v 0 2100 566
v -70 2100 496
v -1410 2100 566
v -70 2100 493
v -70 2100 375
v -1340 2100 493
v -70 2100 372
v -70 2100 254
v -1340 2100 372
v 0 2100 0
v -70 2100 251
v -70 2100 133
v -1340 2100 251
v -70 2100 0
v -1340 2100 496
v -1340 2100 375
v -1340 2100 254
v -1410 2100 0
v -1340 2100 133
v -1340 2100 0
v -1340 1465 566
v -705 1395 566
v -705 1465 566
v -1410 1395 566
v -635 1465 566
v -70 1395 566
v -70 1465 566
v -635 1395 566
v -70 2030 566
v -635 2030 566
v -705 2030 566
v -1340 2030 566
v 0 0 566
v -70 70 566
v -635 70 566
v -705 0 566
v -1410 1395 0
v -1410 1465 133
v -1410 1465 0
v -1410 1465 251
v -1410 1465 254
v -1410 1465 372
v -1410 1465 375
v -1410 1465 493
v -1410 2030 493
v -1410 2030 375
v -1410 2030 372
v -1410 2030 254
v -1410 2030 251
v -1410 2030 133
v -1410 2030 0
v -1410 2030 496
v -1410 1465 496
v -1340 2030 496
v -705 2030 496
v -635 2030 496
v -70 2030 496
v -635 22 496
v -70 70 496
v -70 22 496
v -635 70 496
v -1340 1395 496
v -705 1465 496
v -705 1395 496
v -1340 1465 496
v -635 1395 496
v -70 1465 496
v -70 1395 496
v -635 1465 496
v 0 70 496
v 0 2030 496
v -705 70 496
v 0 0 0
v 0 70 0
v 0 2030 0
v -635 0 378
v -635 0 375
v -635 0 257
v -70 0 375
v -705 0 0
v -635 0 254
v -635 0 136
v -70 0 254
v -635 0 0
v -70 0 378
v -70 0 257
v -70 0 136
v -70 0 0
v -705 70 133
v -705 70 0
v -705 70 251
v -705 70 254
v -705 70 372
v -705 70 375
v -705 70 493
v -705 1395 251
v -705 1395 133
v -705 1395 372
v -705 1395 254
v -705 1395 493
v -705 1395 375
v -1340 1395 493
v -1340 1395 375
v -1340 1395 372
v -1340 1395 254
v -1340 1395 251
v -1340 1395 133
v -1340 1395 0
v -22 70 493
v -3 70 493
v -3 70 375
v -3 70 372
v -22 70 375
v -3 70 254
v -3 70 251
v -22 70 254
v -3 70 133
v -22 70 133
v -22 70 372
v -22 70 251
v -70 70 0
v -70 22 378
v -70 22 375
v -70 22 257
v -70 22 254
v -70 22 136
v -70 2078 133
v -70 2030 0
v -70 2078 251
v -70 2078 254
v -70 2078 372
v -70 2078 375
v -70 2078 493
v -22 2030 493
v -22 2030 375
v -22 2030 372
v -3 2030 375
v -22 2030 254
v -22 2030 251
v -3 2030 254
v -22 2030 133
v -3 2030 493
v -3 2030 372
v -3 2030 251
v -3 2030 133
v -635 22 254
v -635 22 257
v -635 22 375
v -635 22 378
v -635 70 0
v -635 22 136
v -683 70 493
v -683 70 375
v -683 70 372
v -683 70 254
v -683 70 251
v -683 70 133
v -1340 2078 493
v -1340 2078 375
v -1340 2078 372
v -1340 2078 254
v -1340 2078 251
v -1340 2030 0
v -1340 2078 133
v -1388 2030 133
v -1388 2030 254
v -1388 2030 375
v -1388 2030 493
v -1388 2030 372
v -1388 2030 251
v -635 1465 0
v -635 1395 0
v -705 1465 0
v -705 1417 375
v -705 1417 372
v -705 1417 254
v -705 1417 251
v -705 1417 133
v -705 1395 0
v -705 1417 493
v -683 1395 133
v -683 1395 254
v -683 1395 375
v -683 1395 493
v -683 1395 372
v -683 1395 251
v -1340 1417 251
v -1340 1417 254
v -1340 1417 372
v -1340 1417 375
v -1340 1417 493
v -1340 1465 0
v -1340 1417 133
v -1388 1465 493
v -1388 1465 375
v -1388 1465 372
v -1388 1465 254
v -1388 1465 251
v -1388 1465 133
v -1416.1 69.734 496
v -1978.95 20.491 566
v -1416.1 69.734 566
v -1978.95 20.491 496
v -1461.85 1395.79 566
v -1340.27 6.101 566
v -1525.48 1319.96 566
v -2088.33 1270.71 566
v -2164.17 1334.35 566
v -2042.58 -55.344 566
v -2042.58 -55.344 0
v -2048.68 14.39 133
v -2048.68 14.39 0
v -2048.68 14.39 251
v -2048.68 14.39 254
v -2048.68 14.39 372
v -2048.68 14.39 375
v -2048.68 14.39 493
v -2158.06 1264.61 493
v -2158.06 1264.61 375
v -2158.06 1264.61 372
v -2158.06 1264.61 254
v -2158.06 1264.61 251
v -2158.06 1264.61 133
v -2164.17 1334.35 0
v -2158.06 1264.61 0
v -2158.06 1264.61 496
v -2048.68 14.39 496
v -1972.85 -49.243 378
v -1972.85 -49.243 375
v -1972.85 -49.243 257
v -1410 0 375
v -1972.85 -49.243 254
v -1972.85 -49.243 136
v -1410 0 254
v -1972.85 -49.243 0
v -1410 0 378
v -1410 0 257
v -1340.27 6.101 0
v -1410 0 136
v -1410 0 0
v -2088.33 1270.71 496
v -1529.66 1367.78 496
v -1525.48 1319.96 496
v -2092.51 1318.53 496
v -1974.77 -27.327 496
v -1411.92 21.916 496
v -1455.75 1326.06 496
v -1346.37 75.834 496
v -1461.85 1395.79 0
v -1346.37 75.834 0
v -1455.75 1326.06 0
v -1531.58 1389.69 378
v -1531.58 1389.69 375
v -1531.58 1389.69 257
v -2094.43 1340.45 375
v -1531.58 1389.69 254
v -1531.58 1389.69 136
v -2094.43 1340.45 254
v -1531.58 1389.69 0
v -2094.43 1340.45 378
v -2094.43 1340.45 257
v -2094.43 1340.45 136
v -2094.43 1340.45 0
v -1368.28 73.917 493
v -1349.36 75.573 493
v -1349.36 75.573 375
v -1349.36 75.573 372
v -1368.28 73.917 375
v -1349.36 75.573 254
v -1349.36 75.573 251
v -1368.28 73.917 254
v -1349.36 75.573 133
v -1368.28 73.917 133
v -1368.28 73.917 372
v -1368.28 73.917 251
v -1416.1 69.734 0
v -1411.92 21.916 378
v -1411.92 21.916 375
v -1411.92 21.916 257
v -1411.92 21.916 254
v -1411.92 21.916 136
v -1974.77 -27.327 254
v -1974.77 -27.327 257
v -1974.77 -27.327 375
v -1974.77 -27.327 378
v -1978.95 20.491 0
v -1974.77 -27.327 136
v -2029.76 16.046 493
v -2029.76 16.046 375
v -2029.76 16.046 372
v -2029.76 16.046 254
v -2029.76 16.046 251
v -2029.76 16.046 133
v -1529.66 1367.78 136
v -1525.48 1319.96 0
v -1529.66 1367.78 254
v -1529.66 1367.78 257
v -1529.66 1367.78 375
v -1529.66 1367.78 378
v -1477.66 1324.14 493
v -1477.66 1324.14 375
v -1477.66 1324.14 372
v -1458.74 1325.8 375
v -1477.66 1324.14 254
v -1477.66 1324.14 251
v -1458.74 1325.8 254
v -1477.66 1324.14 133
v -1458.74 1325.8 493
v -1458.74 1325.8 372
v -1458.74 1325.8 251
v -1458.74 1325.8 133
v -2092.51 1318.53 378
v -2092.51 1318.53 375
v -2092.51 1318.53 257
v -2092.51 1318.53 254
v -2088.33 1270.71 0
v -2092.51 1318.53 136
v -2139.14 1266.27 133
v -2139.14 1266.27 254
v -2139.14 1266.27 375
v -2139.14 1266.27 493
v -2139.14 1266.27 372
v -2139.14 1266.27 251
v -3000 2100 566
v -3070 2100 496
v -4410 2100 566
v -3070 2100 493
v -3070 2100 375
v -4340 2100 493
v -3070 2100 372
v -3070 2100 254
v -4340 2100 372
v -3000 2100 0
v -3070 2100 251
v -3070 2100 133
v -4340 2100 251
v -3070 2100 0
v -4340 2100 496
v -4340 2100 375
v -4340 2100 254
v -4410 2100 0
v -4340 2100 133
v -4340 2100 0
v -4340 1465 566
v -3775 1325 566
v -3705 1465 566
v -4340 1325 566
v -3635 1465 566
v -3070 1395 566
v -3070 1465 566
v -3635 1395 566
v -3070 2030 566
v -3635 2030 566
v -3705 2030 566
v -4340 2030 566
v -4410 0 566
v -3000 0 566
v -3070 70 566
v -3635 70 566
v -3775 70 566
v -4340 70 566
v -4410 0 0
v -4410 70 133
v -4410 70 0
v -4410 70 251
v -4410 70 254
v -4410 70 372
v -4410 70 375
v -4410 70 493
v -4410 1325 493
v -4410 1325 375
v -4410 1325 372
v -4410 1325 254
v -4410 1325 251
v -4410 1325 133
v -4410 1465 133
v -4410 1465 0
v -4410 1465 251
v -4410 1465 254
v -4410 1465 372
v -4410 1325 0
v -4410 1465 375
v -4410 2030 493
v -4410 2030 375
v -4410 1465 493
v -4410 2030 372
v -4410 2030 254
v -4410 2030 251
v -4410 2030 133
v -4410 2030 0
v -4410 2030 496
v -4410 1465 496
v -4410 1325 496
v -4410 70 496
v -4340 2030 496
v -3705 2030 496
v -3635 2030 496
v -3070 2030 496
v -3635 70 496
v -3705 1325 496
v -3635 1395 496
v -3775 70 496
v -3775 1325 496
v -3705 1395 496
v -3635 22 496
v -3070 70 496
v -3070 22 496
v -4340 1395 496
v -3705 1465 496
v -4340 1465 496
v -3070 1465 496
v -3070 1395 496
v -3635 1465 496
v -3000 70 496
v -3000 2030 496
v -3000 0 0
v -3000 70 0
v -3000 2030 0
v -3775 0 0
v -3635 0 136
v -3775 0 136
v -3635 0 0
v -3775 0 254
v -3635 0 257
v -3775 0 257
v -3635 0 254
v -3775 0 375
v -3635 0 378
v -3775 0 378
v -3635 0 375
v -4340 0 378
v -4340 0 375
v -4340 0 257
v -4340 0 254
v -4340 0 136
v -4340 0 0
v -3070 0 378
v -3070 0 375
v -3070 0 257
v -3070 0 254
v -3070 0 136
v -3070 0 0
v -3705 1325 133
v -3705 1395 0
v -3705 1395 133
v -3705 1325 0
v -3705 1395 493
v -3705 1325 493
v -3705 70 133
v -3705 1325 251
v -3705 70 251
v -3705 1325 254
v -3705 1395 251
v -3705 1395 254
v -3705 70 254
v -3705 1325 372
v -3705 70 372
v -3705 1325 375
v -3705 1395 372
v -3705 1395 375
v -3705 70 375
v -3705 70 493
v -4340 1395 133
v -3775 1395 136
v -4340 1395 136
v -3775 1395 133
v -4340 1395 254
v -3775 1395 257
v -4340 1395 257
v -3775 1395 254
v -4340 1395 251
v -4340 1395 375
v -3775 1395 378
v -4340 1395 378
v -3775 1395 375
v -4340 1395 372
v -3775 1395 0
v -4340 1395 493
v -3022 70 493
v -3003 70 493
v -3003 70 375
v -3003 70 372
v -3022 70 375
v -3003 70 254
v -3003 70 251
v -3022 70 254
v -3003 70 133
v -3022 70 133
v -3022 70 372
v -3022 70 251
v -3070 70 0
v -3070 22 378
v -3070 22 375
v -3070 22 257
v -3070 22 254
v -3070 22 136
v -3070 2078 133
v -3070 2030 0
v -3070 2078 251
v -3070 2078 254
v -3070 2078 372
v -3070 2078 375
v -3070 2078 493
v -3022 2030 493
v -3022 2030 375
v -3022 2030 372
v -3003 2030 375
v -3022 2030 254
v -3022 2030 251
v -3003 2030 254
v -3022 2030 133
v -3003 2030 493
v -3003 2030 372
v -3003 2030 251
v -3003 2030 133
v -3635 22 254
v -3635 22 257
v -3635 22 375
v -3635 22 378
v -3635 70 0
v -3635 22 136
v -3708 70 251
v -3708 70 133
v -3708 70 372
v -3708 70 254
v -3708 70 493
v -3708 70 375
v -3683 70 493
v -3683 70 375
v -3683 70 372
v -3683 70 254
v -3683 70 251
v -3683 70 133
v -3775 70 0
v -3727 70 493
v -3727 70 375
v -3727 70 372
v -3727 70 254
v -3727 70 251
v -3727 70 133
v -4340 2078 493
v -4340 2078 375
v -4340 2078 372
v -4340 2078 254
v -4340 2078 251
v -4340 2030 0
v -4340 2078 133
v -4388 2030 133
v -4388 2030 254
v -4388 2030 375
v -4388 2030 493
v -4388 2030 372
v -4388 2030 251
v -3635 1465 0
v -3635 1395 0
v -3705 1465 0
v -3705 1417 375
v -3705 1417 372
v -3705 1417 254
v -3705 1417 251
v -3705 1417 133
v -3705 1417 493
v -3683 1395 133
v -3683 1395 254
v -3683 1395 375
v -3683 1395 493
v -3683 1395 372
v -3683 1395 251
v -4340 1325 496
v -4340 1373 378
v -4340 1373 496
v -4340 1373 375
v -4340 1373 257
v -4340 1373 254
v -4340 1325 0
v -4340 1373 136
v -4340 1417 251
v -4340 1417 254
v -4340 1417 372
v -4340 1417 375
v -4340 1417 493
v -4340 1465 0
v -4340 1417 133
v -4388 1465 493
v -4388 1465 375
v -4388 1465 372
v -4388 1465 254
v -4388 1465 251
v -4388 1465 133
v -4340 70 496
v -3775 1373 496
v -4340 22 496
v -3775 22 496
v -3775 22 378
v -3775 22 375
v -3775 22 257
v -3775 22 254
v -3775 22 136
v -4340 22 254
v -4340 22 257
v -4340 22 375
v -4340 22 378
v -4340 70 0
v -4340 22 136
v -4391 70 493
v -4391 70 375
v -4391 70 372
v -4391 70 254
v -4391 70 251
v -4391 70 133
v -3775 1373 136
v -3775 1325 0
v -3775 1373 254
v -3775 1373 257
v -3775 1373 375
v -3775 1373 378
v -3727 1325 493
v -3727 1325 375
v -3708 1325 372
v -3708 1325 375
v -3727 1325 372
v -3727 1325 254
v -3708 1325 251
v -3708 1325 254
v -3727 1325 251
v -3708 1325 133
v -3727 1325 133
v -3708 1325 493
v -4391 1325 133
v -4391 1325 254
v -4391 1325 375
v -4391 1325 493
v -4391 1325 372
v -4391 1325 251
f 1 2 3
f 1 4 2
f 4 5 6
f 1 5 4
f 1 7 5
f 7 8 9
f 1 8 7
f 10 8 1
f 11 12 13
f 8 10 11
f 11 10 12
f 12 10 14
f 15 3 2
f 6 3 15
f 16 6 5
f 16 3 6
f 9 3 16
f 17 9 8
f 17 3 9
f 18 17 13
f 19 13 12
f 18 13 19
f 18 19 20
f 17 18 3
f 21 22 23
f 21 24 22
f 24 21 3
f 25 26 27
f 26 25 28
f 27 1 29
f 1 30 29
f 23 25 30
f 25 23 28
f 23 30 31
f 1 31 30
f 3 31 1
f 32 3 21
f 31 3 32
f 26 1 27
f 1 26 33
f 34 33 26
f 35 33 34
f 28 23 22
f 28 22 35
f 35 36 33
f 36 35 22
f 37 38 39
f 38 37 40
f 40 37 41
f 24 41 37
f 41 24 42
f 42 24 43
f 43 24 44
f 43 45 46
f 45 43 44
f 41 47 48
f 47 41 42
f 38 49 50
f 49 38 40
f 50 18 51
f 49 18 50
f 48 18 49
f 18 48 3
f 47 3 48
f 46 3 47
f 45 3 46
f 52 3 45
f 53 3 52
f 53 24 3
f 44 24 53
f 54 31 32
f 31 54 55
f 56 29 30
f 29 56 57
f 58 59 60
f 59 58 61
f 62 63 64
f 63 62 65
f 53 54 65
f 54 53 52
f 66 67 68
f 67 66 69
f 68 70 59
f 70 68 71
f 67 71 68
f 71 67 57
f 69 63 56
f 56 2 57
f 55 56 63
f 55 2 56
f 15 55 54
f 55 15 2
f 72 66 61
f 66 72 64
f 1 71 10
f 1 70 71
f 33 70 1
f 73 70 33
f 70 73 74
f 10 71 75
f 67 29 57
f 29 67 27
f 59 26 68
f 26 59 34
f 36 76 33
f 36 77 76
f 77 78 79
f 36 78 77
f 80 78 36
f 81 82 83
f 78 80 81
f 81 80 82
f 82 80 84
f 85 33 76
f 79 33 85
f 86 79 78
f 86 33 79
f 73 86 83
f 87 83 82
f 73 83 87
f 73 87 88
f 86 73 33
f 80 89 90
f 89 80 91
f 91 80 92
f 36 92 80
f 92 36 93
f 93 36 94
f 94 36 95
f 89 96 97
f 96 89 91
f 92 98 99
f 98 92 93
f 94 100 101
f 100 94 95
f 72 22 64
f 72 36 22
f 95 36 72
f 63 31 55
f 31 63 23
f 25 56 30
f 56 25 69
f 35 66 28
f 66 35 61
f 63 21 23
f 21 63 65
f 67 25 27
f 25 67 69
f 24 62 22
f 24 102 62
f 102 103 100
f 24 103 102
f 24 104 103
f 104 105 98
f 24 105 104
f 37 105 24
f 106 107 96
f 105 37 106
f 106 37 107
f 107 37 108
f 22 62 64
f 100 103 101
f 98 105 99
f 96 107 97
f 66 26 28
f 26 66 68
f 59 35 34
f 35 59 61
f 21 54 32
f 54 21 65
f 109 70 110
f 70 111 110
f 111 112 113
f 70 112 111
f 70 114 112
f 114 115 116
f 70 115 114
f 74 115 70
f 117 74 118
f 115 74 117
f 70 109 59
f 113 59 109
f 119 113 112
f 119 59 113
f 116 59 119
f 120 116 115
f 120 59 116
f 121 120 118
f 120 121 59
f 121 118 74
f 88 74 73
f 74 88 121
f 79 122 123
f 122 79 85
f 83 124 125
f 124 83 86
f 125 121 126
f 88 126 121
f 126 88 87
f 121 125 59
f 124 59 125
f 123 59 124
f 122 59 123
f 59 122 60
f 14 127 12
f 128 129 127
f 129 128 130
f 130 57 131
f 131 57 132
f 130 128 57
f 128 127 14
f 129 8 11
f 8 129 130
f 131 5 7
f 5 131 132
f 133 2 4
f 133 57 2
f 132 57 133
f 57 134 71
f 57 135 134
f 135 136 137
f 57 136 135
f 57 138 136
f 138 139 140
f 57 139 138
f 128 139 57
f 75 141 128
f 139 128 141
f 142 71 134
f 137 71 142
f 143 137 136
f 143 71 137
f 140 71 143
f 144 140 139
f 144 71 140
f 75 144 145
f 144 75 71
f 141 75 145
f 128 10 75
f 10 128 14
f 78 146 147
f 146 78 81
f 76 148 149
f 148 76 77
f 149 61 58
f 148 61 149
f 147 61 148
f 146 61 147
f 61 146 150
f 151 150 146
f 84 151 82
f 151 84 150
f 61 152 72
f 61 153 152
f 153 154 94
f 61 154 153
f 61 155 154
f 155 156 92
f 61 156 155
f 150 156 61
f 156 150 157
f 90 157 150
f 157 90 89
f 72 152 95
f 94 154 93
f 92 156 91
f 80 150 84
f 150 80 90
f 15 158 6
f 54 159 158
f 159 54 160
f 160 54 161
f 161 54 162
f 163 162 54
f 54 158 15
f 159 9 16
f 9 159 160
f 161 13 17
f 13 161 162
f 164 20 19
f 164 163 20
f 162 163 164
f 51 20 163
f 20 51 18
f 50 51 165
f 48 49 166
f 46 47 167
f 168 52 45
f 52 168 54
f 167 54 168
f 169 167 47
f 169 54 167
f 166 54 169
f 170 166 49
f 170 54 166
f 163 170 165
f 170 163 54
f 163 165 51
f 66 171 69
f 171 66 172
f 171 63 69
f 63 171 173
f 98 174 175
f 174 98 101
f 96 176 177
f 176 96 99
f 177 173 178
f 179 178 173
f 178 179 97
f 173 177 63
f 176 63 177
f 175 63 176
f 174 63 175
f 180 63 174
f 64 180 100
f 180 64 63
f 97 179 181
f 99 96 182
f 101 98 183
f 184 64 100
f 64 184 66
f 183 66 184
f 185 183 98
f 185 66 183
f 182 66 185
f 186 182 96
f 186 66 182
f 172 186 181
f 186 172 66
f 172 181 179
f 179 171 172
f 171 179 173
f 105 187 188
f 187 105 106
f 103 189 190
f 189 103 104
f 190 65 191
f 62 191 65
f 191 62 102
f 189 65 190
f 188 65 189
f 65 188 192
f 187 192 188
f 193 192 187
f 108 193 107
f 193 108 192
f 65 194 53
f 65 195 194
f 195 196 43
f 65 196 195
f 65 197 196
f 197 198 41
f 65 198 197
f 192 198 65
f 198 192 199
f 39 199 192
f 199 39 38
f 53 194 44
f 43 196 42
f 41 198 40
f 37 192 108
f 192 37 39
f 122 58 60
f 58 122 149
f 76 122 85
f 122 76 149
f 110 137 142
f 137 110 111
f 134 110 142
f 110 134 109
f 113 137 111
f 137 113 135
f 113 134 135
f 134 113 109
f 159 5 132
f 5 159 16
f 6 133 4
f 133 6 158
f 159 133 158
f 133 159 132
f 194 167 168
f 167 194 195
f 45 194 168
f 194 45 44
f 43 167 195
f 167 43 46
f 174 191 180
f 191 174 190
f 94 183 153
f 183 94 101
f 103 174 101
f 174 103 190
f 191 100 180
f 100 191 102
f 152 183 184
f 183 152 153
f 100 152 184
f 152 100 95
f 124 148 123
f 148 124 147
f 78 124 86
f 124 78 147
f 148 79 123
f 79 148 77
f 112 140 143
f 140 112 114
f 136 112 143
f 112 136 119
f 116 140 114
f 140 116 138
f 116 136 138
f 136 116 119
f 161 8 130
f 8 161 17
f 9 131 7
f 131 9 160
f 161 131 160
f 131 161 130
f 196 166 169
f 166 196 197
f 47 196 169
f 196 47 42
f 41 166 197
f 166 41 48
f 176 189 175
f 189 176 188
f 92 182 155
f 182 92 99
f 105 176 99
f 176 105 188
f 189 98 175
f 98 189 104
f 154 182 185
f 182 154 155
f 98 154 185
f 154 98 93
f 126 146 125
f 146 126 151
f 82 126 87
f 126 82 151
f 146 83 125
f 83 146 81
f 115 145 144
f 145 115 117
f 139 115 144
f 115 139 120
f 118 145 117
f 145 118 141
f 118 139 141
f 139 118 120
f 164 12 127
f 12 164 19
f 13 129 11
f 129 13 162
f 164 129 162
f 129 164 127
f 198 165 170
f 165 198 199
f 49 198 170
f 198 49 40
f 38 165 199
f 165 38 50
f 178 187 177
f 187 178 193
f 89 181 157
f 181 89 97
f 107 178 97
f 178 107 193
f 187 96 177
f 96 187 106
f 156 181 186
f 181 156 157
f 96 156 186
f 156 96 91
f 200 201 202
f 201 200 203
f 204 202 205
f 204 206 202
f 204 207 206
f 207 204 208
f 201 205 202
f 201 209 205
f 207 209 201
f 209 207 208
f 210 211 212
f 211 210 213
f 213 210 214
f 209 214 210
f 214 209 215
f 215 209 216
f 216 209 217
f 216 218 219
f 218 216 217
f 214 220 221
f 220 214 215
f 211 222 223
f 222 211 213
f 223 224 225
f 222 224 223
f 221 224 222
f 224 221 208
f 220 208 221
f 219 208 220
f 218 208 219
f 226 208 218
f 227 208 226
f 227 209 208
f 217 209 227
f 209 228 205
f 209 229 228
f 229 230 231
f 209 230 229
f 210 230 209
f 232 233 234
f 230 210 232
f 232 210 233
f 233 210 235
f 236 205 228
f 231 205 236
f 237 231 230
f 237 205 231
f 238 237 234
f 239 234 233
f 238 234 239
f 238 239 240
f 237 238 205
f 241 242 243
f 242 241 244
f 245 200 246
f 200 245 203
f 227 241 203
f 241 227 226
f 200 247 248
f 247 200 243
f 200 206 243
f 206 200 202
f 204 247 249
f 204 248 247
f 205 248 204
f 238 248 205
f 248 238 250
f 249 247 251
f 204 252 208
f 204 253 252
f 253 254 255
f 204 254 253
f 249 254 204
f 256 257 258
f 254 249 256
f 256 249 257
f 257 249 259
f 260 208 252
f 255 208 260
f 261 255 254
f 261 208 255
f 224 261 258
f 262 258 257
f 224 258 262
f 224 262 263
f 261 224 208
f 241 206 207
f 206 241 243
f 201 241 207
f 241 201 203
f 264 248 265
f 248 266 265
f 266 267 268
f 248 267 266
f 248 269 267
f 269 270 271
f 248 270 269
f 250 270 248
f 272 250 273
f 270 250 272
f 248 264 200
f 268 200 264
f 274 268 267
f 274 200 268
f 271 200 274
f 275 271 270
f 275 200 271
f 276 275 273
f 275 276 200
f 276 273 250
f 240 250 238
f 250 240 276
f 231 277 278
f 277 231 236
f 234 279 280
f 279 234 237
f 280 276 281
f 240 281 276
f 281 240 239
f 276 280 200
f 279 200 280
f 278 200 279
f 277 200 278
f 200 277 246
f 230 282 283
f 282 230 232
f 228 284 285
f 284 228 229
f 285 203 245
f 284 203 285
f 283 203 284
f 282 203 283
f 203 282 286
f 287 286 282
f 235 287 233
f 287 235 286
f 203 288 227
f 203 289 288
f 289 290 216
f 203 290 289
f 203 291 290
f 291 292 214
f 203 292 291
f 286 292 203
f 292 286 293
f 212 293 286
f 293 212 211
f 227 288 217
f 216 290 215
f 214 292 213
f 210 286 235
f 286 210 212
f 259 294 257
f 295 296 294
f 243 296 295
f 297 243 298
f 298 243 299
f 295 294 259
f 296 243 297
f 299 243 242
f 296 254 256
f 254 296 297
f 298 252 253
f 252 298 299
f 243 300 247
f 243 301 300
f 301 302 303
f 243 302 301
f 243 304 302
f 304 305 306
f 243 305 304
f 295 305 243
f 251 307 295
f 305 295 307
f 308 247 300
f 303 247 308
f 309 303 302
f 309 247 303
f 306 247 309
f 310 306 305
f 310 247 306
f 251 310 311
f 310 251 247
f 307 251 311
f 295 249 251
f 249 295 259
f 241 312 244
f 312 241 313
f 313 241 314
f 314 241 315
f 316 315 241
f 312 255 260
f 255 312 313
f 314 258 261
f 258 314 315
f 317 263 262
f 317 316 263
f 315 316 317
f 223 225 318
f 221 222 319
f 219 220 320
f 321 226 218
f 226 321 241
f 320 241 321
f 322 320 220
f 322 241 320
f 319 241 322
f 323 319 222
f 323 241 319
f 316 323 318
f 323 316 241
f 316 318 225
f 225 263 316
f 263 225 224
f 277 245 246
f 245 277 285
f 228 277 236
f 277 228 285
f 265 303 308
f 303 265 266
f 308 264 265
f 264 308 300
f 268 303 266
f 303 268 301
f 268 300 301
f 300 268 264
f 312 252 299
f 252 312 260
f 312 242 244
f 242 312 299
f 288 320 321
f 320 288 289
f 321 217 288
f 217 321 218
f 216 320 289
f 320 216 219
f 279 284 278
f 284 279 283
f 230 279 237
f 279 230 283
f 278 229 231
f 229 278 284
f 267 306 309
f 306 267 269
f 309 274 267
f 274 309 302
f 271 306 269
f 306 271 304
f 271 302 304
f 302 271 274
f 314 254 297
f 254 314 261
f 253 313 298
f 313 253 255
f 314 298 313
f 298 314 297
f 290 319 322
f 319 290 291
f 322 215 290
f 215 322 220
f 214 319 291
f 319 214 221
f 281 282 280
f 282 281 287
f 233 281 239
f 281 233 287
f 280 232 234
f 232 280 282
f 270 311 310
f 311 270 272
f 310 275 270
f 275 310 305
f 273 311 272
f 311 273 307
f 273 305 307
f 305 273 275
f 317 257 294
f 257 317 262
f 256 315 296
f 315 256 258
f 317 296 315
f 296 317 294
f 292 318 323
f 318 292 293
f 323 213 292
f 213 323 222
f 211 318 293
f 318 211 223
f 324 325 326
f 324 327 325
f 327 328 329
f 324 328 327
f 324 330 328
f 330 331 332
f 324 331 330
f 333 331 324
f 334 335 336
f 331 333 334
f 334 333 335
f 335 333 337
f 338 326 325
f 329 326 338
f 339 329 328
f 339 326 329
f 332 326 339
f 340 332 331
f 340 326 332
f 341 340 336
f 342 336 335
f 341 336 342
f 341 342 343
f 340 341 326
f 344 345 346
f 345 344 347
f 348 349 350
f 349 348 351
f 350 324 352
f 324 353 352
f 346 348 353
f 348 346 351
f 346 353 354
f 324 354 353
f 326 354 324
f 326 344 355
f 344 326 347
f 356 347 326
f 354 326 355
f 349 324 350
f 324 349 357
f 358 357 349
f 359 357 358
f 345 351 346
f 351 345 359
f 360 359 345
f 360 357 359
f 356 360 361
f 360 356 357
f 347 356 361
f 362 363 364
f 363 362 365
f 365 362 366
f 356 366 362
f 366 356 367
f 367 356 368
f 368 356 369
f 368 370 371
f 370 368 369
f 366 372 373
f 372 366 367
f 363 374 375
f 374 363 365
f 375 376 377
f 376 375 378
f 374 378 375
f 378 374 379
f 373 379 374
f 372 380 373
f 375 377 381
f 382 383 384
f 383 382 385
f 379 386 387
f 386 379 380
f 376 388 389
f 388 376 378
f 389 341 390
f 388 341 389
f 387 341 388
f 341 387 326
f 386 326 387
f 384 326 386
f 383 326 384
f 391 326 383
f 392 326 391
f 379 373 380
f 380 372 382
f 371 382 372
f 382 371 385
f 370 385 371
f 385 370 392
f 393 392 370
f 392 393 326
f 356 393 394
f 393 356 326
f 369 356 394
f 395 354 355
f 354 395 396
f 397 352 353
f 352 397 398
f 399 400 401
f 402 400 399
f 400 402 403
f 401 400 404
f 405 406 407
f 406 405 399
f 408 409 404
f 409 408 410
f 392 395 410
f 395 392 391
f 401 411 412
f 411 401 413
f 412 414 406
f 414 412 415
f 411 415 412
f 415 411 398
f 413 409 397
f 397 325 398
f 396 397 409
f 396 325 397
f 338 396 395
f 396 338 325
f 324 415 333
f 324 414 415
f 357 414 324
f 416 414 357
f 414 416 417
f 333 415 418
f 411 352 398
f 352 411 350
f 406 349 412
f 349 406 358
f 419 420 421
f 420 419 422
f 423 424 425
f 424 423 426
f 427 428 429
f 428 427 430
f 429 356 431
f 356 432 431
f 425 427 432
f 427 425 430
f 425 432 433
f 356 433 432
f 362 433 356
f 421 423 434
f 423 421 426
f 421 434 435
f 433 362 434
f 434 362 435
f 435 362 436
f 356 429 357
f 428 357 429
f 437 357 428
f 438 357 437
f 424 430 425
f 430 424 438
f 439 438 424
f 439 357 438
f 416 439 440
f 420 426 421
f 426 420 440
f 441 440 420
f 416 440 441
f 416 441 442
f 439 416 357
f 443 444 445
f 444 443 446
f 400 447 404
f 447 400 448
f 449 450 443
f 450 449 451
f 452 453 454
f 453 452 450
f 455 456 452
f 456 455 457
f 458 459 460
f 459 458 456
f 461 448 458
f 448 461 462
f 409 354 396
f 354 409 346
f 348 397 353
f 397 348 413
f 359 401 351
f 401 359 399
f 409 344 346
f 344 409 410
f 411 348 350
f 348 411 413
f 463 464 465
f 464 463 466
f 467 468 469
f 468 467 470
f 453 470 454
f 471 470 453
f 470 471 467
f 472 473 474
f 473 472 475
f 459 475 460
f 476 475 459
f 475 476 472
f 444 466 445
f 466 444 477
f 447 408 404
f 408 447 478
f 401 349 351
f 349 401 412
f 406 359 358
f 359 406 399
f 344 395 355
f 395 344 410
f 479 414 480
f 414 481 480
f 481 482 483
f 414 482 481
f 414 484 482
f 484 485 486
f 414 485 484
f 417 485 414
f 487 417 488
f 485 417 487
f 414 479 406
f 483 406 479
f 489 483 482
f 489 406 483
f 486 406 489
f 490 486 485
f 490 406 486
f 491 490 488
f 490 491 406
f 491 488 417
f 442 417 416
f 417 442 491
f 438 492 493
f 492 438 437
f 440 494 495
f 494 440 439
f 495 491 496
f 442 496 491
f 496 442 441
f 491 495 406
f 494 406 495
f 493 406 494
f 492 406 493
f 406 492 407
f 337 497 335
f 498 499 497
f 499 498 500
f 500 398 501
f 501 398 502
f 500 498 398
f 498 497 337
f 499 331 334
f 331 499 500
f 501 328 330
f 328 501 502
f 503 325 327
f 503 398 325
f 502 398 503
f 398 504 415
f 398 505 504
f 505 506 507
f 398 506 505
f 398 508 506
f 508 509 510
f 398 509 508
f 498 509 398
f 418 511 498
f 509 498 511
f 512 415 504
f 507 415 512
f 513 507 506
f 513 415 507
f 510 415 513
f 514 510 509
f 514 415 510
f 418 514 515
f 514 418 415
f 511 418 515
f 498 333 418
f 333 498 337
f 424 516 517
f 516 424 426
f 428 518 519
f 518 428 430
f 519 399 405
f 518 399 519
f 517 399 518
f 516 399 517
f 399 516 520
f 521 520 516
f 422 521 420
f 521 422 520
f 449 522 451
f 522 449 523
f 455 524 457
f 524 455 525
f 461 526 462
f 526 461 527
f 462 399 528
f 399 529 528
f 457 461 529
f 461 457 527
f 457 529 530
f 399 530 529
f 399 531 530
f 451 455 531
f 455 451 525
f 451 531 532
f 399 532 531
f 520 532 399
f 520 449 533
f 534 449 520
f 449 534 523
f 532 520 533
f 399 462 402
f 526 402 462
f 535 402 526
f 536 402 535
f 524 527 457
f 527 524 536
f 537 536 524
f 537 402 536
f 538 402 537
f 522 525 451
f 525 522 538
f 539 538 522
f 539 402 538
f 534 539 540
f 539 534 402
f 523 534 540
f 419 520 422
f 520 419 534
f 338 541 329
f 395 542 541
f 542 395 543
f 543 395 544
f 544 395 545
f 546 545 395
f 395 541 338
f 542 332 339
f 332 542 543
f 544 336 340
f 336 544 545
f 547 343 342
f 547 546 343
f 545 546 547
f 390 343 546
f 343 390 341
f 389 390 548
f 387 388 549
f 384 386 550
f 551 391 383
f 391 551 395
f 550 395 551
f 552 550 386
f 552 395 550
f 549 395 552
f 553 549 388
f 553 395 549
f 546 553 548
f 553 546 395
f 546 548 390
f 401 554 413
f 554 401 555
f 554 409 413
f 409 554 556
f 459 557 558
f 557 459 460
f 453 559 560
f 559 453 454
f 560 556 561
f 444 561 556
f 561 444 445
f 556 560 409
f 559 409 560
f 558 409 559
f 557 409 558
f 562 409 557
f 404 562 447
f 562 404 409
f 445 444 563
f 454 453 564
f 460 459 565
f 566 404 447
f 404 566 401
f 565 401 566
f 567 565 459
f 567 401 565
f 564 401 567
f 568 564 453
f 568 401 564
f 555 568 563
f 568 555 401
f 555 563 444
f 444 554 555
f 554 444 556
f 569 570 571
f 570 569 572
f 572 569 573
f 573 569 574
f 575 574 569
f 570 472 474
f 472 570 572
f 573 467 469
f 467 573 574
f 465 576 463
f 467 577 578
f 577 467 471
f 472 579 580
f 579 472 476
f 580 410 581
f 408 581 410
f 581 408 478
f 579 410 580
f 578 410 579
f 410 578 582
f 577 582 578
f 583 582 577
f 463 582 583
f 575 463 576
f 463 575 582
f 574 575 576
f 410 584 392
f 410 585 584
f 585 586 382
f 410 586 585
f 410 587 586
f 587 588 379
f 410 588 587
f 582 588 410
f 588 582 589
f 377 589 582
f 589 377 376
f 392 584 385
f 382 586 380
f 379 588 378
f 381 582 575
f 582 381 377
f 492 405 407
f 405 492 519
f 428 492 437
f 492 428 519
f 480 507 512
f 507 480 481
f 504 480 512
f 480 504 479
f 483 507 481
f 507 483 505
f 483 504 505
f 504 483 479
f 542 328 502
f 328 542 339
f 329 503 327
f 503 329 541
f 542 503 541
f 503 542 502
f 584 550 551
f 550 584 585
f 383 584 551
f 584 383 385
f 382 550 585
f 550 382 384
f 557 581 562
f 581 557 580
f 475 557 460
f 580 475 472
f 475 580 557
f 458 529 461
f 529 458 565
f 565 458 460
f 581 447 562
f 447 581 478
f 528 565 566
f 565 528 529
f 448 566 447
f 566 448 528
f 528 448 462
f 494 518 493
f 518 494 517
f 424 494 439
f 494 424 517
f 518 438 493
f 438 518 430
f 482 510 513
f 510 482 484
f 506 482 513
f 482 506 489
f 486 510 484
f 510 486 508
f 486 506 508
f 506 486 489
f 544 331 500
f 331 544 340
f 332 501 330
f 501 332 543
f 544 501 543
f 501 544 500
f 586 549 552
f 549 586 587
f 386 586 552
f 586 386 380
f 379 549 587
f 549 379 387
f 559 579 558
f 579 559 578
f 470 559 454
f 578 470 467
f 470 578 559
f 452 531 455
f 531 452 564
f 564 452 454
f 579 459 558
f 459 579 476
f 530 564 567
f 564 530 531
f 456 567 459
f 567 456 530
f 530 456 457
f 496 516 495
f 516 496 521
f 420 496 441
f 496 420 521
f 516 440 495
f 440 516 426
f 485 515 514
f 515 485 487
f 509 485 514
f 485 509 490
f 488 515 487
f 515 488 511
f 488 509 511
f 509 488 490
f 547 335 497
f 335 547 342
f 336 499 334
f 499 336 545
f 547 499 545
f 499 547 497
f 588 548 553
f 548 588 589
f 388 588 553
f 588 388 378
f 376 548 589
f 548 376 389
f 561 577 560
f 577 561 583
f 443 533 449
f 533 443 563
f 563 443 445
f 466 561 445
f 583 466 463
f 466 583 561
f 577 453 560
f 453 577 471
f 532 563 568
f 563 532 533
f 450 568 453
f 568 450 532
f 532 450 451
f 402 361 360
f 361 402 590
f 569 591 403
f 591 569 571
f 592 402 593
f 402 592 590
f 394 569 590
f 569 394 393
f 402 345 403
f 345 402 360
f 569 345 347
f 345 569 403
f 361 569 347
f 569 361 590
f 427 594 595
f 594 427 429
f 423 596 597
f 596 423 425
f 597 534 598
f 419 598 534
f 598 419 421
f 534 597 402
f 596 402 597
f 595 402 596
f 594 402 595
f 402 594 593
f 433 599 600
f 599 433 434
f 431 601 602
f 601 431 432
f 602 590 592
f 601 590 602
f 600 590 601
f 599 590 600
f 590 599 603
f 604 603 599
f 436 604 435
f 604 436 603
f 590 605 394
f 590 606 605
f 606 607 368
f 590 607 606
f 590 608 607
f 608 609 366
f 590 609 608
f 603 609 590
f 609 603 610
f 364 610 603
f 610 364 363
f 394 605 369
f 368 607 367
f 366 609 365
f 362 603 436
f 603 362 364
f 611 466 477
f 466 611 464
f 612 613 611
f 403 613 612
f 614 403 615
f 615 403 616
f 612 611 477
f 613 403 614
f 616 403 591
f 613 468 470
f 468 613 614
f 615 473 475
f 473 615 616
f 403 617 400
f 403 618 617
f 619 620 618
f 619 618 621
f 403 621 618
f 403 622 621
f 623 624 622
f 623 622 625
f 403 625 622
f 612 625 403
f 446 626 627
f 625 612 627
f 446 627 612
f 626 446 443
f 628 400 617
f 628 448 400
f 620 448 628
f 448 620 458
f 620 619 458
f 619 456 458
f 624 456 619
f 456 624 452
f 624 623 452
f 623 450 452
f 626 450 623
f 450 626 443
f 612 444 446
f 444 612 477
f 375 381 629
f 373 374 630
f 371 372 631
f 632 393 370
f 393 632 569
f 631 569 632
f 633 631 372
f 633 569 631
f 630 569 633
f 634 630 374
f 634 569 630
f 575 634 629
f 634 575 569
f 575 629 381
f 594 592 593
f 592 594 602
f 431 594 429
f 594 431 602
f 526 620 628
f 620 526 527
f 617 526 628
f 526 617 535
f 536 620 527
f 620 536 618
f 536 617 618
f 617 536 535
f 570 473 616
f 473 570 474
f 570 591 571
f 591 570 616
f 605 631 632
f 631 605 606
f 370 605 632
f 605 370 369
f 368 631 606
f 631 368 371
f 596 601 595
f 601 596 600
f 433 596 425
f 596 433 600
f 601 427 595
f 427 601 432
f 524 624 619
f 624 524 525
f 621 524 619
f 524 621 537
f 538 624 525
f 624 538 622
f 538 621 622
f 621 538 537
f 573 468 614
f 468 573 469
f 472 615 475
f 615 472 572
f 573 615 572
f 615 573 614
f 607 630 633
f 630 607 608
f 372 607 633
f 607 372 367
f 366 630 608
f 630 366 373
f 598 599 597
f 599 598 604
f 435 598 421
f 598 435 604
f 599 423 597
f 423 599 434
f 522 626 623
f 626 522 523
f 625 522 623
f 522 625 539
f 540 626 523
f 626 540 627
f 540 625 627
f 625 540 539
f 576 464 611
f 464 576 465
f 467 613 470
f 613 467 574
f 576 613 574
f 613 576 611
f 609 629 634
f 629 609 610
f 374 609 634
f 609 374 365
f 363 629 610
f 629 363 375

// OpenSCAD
mat_w = 1400;
mat_t = 2000;
mat_h = 190;

balk_s=70;
lang=2100;
breit=mat_w+10;

brett_s1=121;
brett_s2=22;

rahmen_s=34;

box_h=3*brett_s1;

sitz_b = breit/2-balk_s;

gesamt_hoch=600;
hoch=gesamt_hoch-rahmen_s;

// L
module rahmen_L() {
 translate([balk_s,lang - balk_s,0])
    rotate([0,0,90])
    cube([balk_s,breit,balk_s]);

    cube([balk_s,lang,balk_s]);

    translate([-sitz_b,0,0])
    cube([balk_s,lang,balk_s]);

    translate([balk_s, lang - sitz_b - balk_s, 0])
    rotate([0,0,90])
    cube([balk_s,breit,balk_s]);

    translate([balk_s, 0, 0])
    rotate([0, 0, 90])
    cube([balk_s, sitz_b + balk_s, balk_s]);

    translate([-2*sitz_b-balk_s, lang - sitz_b - balk_s, 0])
    rotate([0, 0, 0])
    cube([balk_s, sitz_b + balk_s, balk_s]);
}

module beine_L() {
    translate([0, 0, 0])
    rotate([-90, 0, 0])
    cube([balk_s, hoch - balk_s, balk_s]); 
    
    translate([0, lang - balk_s, 0])
    rotate([-90, 0, 0])
    cube([balk_s, hoch - balk_s, balk_s]); 
    
    translate([-sitz_b, 0, 0])
    rotate([-90, 0, 0])
    cube([balk_s, hoch - balk_s, balk_s]); 
    
    translate([-breit + balk_s, lang - balk_s, 0])
    rotate([-90, 0, 0])
    cube([balk_s, hoch - balk_s, balk_s]); 
    
    translate([-sitz_b, lang - balk_s - sitz_b, 0])
    rotate([-90, 0, 0])
    cube([balk_s, hoch - balk_s, balk_s]); 
    
    translate([-breit + balk_s, lang - balk_s - sitz_b, 0])
    rotate([-90, 0, 0])
    cube([balk_s, hoch - balk_s, balk_s]); 
}

module seite_L(){
    gap=3;
    
    // vorn
    rotate([0,90,90])
    cube([brett_s1-gap, sitz_b - balk_s, brett_s2]);
    
    // rechts
    translate([balk_s-brett_s2, balk_s, -gap])
    rotate([0,90,0])
    cube([brett_s1-gap, lang- 2*balk_s, brett_s2-gap]);
    
    //hinten
    translate([0, lang-brett_s2, -gap])
    rotate([0,90,90])
    cube([brett_s1-gap, breit - 2 * balk_s, brett_s2]);
    
    // links1
    translate([-breit+balk_s, lang-sitz_b, -gap])
    rotate([0,90,0])
    cube([brett_s1-gap, sitz_b - balk_s, brett_s2]);
    
    // mitte
    translate([-sitz_b, lang-sitz_b-balk_s, -gap])
    rotate([0,90,90])
    cube([
        brett_s1-gap, 
        breit - 2 * balk_s - sitz_b, 
        brett_s2
    ]);
    
    // links2
    translate([-sitz_b, balk_s, -gap])
    rotate([0,90,0])
    cube([brett_s1-gap, lang - balk_s - sitz_b, brett_s2]);
    
}
module seiten_L(){    

    for (off = [0:brett_s1:box_h-1]) {
        translate([0, 0, -off])
        seite_L();
    }
}
module teil_L() {
    rahmen_L();
    beine_L();
    seiten_L();
}

// Q
module rahmen_Q(){
    rotate([0,0,90])
    cube([balk_s, sitz_b , balk_s]);

    cube([balk_s, lang - (balk_s) - sitz_b, balk_s]);    
    
    translate([0,  lang - (2*balk_s) - sitz_b, 0])
    rotate([0,0,90])
    cube([balk_s, sitz_b , balk_s]);
    
    translate([-sitz_b,  0, 0])
    rotate([0, 0, 0])
    cube([balk_s, lang - (balk_s) - sitz_b, balk_s]); 
 
}
module beine_Q(){
    translate([0, 0, 0])
    rotate([-90, 0, 0])
    cube([balk_s, hoch - balk_s, balk_s]); 
    
    translate([-sitz_b, 0, 0])
    rotate([-90, 0, 0])
    cube([balk_s, hoch - balk_s, balk_s]); 
    
    translate([0, lang - (2*balk_s) - sitz_b , 0])
    rotate([-90, 0, 0])
    cube([balk_s, hoch - balk_s, balk_s]); 
    
    translate([-sitz_b, lang - (2*balk_s) - sitz_b, 0])
    rotate([-90, 0, 0])
    cube([balk_s, hoch - balk_s, balk_s]); 
}
module seite_Q(){
    gap=3;
    
    // vorn
    translate([0,0,0])
    rotate([0,90,90])
    cube([brett_s1-gap, sitz_b - balk_s, brett_s2]);
    
     // rechts
    translate([balk_s-brett_s2, balk_s, -gap])
    rotate([0,90,0])
    cube([brett_s1-gap, lang- 3*balk_s -sitz_b, brett_s2-gap]);
    
    // hinten
    translate([0,lang-sitz_b-balk_s-brett_s2,0])
    rotate([0,90,90])
    cube([
        brett_s1 - gap, 
        sitz_b - balk_s, 
        brett_s2
    ]);
    
     // links
    translate([-sitz_b, balk_s, -gap])
    rotate([0,90,0])
    cube([brett_s1-gap, lang- 3*balk_s -sitz_b, brett_s2-gap]);
}
module seiten_Q() {
    for (off = [0:brett_s1:box_h-1]) {
        translate([0, 0, -off])
        seite_Q();
    }
}
module deckel_Q(){
    translate([balk_s-rahmen_s, 0, 2*rahmen_s]) {
        /// vorn
        rotate([0,0,90])
        cube([
            rahmen_s, 
            sitz_b +balk_s-rahmen_s, 
            rahmen_s
        ]);

        cube([rahmen_s, lang - (rahmen_s) - sitz_b, rahmen_s]);    
        
        translate([0,  lang - (2*rahmen_s) - sitz_b, 0])
        rotate([0,0,90])
        cube([rahmen_s, sitz_b , rahmen_s]);
        
        translate([-sitz_b,  0, 0])
        rotate([0, 0, 0])
        cube([rahmen_s, lang - (rahmen_s) - sitz_b, rahmen_s]); 
    }
}
module teil_Q() {
    rahmen_Q();
    beine_Q();
    seiten_Q();
    //#deckel_Q();
}


// Zusammengestellt
module bett() {
    translate([-balk_s,0,hoch-balk_s]) {
        teil_L();
        translate([-sitz_b-balk_s, 0, 0])
        teil_Q();
    }    
}
module bett2() {
    translate([-balk_s,0,hoch-balk_s]) {
        teil_L();
        translate([-2*sitz_b-balk_s, 0, 0])
        rotate([0,0,5])
        teil_Q();
    }    
}

// anzeige
bett2();


translate([-3000,0,0])
bett();
